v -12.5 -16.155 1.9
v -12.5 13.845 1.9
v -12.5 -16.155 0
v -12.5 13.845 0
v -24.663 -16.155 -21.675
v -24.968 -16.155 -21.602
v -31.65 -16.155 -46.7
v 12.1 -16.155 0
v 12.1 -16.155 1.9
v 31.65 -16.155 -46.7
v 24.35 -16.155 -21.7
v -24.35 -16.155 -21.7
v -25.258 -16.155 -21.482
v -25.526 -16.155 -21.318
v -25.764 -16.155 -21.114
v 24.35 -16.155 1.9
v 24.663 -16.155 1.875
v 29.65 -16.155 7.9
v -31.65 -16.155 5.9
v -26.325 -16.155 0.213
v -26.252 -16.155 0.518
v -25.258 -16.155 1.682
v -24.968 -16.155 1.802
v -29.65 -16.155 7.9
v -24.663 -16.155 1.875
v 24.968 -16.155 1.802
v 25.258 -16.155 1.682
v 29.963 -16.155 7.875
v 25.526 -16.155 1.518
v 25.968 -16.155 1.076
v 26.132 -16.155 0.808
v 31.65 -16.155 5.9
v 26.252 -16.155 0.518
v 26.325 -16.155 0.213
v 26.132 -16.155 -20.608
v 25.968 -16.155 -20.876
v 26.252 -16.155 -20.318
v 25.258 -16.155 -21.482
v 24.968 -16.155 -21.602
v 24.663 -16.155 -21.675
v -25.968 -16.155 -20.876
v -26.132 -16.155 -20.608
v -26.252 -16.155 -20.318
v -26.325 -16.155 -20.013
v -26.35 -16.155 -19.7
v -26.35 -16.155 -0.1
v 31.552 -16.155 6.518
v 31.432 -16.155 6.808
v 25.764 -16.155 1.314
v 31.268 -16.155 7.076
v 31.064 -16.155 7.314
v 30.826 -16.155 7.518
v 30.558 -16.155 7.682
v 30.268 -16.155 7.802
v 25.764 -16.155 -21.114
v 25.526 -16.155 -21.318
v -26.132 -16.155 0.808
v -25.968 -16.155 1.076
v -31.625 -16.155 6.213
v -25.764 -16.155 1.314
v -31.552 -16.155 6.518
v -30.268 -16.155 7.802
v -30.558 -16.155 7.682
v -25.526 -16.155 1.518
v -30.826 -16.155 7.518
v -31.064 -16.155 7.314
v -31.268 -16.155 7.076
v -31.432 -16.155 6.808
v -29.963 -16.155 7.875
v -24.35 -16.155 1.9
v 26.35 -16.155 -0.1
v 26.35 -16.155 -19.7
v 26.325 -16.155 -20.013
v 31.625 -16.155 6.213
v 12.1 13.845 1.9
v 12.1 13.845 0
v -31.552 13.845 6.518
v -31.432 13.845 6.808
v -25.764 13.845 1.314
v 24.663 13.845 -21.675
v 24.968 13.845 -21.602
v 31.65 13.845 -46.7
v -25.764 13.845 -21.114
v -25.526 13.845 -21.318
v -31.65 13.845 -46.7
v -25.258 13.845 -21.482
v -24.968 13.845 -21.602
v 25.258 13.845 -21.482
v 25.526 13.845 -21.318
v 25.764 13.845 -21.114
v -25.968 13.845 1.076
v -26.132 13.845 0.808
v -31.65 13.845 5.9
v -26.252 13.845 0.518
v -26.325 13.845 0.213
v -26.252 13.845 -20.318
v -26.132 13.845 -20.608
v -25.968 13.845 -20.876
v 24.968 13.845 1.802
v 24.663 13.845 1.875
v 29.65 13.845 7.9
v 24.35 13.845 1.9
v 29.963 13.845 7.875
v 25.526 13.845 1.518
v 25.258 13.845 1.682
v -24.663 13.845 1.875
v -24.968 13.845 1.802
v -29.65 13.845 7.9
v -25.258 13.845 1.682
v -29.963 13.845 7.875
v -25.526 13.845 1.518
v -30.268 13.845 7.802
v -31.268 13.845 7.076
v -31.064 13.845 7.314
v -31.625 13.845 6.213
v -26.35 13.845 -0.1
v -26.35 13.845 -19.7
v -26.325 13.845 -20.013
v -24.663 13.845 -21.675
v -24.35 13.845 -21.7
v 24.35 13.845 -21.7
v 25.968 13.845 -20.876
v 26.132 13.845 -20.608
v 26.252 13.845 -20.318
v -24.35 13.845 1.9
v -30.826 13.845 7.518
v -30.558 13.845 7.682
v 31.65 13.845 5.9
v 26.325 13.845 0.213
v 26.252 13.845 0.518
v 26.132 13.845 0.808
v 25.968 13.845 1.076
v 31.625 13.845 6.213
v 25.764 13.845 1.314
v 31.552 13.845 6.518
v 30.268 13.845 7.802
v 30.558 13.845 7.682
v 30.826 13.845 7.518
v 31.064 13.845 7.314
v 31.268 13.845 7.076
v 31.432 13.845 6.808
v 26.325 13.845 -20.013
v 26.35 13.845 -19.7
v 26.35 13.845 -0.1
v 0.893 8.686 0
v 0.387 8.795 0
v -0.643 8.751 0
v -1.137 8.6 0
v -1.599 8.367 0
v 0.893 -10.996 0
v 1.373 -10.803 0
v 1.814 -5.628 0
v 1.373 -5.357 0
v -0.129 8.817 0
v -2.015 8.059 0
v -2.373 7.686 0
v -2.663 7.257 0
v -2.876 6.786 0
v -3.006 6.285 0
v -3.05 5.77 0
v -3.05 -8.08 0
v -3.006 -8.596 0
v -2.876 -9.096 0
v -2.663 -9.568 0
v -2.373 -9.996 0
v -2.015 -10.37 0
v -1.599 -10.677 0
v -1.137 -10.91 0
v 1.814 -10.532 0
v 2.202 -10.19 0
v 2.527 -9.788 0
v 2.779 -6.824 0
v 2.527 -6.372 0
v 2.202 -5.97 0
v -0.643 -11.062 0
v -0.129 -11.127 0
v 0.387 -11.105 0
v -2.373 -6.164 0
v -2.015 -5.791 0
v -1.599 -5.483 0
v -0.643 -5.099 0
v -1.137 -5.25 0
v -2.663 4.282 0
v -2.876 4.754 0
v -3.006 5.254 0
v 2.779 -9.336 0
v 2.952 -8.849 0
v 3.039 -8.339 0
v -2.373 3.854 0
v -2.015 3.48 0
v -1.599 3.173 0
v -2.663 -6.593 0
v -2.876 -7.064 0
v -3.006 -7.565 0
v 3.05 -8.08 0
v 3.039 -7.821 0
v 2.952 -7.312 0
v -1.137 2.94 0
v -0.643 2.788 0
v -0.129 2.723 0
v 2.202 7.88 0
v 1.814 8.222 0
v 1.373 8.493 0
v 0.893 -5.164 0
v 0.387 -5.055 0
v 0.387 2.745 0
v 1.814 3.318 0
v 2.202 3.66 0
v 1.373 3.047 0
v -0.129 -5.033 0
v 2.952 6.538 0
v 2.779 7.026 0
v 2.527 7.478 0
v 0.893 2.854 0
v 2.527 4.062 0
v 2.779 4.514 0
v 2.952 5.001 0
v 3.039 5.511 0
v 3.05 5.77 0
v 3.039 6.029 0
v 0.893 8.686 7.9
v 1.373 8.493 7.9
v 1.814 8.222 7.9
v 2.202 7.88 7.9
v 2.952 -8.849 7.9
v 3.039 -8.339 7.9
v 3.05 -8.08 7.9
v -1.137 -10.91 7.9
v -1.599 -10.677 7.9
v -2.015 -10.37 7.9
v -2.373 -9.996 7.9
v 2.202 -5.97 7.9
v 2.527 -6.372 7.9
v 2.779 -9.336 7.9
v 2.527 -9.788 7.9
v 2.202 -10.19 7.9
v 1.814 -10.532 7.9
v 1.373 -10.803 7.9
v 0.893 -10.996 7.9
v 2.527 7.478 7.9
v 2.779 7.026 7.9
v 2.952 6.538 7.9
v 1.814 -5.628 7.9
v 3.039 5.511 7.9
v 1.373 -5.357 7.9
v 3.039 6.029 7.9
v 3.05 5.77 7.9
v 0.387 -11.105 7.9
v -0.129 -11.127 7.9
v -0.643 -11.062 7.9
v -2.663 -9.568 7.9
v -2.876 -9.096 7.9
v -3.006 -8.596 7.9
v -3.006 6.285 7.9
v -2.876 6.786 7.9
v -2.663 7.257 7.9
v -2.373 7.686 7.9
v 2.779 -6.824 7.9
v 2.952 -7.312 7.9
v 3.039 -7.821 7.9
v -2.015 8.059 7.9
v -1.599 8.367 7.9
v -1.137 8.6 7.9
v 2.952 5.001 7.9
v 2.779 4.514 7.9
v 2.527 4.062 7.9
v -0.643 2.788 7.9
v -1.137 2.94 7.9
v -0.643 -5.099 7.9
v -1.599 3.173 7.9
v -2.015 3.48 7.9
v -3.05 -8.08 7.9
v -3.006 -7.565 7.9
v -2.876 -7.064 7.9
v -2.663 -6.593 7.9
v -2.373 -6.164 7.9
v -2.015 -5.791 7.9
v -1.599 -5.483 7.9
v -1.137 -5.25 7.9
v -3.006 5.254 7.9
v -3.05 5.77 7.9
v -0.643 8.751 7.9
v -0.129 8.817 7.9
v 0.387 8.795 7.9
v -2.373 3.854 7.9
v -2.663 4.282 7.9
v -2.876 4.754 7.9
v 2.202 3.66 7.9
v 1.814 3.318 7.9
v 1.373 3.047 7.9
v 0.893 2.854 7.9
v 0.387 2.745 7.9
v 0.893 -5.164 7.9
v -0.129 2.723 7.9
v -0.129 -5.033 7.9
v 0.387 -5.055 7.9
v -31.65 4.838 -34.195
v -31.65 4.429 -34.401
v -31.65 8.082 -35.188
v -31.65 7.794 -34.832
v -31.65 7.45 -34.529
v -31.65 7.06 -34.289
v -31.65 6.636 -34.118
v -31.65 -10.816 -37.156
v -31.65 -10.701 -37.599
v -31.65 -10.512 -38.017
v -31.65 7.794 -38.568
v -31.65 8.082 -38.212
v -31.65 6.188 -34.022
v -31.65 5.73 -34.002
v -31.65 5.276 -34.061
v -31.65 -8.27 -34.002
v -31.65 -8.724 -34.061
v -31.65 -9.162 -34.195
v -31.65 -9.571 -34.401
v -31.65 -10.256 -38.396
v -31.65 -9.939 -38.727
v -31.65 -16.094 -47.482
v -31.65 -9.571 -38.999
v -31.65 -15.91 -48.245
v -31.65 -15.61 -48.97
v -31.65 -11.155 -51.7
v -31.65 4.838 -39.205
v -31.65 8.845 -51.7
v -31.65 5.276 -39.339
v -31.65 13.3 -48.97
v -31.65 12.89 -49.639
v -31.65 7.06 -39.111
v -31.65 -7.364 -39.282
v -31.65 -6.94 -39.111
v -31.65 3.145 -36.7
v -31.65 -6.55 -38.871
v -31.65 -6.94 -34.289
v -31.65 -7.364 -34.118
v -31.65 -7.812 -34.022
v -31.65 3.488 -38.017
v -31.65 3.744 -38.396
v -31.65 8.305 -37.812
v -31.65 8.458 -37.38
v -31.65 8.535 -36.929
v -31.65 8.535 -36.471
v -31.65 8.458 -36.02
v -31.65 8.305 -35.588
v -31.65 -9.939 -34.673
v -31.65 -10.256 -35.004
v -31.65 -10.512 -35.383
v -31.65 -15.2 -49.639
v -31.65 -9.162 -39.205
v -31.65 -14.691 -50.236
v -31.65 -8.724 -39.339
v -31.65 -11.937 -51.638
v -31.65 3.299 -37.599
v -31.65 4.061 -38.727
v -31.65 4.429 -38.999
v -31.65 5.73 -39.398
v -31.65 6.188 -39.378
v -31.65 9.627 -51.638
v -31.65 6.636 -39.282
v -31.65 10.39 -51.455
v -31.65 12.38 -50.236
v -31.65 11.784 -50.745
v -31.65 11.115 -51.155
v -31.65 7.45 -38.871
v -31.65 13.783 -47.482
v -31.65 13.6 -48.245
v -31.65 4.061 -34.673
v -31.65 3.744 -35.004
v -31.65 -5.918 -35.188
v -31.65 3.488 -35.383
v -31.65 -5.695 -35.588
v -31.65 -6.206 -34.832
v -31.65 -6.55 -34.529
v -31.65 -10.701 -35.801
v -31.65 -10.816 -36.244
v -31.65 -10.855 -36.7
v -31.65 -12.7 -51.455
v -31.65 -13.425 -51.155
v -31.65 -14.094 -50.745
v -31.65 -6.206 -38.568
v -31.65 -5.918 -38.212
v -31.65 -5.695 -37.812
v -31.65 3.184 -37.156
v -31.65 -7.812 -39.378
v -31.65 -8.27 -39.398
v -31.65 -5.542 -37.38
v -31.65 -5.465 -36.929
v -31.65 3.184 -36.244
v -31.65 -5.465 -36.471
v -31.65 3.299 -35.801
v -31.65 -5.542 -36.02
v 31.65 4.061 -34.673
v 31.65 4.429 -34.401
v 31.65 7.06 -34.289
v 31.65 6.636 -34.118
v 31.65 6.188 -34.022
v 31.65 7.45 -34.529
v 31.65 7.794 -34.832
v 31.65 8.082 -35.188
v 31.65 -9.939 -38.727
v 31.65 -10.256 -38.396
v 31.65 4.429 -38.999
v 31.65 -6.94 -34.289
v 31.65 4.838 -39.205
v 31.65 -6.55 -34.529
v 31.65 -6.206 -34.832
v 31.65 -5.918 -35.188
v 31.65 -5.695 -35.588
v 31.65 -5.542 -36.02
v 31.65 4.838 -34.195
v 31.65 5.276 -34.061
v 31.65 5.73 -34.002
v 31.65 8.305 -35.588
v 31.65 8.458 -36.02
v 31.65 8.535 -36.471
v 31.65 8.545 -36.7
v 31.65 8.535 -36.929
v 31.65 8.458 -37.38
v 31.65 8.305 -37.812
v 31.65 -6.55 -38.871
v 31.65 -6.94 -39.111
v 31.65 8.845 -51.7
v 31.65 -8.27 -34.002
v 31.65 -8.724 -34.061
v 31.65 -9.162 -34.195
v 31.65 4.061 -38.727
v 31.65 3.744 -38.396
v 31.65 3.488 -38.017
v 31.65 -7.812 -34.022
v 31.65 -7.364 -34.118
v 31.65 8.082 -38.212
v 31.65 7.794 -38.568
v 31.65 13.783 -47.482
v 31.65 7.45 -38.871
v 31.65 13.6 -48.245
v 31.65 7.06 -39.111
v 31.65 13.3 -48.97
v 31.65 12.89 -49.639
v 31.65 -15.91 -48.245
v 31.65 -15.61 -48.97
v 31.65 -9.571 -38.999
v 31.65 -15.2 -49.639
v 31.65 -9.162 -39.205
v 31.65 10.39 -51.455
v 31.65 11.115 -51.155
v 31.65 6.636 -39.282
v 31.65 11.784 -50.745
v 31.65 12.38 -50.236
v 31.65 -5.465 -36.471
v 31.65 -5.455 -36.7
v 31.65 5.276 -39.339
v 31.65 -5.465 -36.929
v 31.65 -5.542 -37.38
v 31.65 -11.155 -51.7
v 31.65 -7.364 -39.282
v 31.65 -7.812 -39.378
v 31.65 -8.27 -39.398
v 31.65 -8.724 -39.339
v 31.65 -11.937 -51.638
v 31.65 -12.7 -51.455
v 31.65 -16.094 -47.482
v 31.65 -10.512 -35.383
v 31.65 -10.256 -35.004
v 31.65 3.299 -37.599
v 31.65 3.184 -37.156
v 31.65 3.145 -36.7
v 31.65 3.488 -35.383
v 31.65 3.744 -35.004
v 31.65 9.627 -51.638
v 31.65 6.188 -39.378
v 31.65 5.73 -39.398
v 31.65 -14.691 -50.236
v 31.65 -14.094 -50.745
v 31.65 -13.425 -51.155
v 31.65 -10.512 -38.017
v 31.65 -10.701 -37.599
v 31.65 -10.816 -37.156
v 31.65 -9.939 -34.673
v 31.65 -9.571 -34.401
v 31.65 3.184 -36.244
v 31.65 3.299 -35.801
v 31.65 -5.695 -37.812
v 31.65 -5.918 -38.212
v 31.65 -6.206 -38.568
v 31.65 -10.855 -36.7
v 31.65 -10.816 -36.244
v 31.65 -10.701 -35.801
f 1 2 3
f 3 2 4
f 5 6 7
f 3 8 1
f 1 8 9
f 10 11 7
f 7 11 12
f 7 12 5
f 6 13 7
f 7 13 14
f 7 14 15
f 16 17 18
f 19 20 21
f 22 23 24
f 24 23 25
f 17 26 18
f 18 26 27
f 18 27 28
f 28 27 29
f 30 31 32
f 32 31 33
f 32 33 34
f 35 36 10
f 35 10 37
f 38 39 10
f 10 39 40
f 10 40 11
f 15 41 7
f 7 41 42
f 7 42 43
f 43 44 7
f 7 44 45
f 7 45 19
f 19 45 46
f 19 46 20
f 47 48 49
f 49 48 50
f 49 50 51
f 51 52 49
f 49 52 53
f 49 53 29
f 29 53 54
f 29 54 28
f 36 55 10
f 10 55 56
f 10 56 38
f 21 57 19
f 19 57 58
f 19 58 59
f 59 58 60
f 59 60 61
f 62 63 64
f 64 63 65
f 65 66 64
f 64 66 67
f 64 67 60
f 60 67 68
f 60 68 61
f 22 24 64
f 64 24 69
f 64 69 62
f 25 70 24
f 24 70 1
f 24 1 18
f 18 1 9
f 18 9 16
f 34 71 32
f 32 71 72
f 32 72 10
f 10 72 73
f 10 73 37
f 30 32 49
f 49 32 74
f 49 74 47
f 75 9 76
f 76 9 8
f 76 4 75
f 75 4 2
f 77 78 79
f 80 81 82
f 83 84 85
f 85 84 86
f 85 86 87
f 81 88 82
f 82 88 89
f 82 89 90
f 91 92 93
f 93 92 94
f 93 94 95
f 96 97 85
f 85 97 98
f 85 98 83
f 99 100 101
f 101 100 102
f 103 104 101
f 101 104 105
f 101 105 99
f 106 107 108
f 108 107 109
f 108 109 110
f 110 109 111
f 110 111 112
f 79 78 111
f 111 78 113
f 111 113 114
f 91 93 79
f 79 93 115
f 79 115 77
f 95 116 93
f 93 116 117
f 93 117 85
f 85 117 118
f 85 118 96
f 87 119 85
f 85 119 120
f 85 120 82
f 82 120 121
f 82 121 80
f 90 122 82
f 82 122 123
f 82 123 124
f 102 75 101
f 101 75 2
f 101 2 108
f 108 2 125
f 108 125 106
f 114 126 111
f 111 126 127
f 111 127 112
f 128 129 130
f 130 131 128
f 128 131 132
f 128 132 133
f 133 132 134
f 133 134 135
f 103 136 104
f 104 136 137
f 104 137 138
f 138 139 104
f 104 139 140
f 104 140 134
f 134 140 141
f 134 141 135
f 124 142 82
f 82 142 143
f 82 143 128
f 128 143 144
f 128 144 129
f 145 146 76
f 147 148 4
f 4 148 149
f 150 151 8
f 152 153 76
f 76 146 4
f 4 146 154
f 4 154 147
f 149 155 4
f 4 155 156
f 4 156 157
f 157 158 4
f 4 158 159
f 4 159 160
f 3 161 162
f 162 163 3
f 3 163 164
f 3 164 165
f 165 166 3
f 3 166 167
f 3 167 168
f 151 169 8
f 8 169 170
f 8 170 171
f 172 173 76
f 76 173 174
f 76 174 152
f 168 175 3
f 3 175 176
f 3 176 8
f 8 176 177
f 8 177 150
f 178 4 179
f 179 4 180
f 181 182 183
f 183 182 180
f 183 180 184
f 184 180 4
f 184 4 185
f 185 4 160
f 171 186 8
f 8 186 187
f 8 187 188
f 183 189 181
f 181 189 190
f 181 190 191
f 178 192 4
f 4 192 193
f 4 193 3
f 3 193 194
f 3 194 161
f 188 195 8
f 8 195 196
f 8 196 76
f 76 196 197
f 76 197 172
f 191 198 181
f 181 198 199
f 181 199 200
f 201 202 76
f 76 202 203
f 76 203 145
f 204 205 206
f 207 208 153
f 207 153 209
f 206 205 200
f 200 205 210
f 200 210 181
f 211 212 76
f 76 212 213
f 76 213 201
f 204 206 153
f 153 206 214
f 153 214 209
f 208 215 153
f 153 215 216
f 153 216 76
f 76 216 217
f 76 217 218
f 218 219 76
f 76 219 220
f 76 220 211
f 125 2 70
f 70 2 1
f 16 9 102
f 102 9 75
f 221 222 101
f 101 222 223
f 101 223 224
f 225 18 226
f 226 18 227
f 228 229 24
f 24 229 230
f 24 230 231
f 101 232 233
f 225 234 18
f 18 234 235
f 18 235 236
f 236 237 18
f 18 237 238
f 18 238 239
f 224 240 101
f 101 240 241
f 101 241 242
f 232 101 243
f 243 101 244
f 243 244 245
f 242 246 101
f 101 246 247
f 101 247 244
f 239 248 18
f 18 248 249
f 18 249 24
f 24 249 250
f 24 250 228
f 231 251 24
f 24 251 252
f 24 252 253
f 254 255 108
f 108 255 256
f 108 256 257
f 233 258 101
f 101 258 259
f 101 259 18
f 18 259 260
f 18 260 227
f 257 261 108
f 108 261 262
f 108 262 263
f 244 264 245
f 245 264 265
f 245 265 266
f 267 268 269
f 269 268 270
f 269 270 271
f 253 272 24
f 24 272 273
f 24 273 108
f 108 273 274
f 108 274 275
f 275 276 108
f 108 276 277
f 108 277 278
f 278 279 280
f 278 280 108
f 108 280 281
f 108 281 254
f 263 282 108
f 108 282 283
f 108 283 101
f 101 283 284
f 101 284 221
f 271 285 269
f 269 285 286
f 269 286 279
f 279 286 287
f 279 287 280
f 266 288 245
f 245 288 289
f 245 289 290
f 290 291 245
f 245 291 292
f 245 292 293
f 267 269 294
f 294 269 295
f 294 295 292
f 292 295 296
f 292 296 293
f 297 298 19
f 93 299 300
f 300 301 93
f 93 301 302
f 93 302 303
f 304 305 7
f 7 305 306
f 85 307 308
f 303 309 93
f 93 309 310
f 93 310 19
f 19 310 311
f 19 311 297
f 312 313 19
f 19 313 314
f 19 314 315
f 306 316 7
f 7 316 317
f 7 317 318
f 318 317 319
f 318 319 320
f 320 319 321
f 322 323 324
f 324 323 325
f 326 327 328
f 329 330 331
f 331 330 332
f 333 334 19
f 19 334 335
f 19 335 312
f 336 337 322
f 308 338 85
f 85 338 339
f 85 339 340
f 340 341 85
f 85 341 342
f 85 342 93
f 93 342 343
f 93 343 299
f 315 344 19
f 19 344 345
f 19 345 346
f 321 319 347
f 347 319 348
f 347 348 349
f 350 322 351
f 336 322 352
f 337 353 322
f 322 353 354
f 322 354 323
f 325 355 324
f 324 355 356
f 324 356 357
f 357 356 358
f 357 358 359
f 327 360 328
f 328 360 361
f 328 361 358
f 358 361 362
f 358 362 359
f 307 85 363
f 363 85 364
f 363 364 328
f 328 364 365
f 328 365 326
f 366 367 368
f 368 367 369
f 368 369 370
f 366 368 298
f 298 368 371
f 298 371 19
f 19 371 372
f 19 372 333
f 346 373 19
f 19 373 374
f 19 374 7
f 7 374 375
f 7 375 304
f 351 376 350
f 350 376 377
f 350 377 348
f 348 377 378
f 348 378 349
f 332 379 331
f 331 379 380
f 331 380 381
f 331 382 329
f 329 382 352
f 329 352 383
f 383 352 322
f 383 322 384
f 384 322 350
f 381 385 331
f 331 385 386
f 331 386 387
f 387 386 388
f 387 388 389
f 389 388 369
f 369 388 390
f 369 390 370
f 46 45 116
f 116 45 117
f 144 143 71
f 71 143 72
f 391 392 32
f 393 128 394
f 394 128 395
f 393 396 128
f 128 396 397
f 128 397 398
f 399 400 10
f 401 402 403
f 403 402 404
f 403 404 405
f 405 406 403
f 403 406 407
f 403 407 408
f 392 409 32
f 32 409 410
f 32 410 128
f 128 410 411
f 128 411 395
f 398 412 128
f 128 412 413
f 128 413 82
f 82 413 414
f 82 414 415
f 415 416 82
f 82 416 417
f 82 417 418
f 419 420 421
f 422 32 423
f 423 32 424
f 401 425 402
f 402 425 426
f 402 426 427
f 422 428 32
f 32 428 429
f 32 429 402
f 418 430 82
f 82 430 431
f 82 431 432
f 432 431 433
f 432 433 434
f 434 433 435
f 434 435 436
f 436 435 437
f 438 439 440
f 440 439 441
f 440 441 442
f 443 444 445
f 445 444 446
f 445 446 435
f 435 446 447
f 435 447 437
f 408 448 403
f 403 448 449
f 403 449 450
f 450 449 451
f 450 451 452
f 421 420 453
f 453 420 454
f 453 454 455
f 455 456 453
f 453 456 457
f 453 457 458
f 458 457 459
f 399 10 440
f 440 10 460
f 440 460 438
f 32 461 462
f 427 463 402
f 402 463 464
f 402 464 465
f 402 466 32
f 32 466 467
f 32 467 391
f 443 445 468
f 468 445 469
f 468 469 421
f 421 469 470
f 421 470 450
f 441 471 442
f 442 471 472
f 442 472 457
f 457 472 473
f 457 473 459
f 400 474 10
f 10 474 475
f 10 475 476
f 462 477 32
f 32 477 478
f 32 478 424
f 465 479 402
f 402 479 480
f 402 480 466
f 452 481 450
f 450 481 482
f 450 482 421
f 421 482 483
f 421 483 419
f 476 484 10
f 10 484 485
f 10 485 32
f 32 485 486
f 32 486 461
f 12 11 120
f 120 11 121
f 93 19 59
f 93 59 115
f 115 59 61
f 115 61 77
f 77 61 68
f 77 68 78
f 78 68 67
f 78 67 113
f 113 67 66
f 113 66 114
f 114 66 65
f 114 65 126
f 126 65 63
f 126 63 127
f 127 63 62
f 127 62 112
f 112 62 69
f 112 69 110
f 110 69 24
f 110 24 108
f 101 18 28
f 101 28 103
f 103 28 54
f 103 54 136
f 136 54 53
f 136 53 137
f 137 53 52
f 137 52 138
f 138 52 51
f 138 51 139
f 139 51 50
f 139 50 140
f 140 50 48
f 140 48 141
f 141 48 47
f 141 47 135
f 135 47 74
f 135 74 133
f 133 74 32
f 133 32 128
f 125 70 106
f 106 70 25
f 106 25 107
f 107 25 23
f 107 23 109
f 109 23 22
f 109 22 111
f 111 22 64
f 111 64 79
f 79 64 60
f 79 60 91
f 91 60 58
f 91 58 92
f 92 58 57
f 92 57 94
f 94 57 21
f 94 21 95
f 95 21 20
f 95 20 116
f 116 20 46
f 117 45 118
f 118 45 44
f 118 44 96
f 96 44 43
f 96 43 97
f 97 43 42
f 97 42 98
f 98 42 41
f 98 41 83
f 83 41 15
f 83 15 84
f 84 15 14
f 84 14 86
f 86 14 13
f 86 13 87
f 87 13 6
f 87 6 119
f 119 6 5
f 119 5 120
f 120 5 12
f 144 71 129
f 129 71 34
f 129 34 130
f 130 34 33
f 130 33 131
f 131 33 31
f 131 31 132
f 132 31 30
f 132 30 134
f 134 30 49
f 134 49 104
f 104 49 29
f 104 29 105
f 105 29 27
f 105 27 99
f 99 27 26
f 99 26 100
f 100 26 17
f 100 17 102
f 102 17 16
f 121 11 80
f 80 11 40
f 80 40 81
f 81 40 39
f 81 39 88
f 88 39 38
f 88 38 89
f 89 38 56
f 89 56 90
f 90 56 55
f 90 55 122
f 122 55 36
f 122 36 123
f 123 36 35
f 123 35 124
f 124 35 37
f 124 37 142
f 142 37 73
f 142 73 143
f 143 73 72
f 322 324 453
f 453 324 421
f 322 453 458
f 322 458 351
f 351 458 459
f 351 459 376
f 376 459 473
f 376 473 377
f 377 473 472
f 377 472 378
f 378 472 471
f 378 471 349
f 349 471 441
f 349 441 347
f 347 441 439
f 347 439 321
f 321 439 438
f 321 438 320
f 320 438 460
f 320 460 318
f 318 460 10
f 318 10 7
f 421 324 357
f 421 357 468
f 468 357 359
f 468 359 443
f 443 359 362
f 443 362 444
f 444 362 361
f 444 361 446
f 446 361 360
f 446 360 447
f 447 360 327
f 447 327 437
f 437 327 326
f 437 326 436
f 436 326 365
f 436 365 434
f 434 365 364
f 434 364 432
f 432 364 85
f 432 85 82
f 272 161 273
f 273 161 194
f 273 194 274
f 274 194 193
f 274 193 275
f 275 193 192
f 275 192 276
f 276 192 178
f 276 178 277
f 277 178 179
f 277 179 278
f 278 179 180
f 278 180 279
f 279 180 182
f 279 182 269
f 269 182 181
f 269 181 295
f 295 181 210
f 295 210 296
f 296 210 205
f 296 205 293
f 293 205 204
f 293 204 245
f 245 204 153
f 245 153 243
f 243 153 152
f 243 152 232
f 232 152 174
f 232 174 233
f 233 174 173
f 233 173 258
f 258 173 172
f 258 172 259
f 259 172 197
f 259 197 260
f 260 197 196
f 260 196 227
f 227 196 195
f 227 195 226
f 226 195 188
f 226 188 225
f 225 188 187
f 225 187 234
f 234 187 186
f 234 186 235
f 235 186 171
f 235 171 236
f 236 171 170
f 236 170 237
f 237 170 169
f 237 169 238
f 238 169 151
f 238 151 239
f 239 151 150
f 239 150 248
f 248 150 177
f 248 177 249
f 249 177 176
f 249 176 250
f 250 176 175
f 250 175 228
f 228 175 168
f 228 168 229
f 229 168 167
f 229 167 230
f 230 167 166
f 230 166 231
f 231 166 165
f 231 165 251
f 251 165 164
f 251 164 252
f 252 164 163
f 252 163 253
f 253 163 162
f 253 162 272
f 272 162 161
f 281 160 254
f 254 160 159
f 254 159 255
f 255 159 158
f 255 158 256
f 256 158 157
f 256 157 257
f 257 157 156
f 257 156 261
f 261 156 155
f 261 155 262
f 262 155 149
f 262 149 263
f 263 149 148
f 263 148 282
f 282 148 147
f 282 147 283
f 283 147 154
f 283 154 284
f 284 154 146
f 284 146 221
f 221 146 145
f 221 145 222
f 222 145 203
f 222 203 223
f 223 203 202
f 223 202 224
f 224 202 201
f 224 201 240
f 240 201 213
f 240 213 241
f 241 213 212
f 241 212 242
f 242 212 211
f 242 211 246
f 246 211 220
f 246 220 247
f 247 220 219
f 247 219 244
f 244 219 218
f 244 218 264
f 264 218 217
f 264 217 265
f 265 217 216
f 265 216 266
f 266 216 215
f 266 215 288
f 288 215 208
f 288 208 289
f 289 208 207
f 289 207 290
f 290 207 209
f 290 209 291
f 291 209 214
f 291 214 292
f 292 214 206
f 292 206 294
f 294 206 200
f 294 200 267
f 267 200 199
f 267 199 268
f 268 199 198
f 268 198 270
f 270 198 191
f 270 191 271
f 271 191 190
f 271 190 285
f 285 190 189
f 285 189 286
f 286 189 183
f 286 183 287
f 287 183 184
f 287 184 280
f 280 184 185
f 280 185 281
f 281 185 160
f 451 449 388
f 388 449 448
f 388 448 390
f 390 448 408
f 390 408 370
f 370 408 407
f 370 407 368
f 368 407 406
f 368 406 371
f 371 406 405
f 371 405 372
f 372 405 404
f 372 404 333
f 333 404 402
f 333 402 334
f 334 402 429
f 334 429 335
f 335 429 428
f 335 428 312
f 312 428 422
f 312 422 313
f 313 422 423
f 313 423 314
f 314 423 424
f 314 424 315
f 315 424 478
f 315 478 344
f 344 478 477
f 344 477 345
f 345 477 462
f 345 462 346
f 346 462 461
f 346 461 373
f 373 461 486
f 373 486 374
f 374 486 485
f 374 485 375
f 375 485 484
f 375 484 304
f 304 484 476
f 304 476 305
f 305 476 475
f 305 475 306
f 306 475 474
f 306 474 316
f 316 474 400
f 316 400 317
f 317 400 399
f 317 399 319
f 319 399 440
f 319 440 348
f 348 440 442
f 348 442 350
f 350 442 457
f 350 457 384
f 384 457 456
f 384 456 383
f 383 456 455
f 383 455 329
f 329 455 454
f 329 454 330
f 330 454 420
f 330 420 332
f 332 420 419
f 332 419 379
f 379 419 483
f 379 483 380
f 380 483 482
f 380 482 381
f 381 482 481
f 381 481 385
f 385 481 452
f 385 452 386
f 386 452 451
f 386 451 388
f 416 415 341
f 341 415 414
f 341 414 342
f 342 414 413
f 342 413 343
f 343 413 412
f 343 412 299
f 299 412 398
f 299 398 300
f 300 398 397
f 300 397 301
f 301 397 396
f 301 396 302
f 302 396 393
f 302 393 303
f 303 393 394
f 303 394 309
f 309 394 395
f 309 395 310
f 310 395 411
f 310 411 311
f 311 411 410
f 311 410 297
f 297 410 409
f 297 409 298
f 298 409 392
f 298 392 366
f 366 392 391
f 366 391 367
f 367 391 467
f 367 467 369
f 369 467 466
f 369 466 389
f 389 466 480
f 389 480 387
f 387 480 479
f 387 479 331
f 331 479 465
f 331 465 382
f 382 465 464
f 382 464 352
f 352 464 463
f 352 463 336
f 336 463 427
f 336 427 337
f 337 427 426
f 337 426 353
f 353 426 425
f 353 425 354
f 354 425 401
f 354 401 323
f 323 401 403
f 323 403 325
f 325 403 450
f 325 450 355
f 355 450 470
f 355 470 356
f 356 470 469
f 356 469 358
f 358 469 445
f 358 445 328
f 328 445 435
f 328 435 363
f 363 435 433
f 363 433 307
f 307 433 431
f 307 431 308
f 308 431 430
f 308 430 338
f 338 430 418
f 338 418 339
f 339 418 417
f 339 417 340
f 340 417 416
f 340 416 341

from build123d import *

# Parameters (mm, degrees)
ESQUISSE1_W             = 24.6
ESQUISSE1_H             = 30
BOSS_EXTRU_1_DEPTH      = 1.9
ESQUISSE2_W             = 52.7
ESQUISSE2_H             = 30
BOSS_EXTRU_2_DEPTH      = 6
ESQUISSE4_W             = 29.6
ESQUISSE4_H             = 30
BOSS_EXTRU_3_DEPTH      = 5.3
ESQUISSE5_W             = 29.6
ESQUISSE5_H             = 30
BOSS_EXTRU_4_DEPTH      = 5.3
ESQUISSE6_W             = 63.3
ESQUISSE6_H             = 30
BOSS_EXTRU_5_DEPTH      = 3
CONG_1_R                = 2
ESQUISSE7_W             = 63.3
ESQUISSE7_H             = 30
BOSS_EXTRU_6_DEPTH      = 27
CONG_3_R                = 5
ESQUISSE3_R             = 3.05
ENL_V_MAT_EXTRU_2_DEPTH = 26
ESQUISSE8_R             = 2.7
ENL_V_MAT_EXTRU_3_DEPTH = 68


with BuildPart() as part:
    # Esquisse1 → Boss.-Extru.1 (new body)
    with BuildSketch(Plane.XY):
        with Locations((-0.2, -1.155063291)):
            Rectangle(ESQUISSE1_W, ESQUISSE1_H)
    extrude(amount=BOSS_EXTRU_1_DEPTH)

    # Esquisse2 → Boss.-Extru.2 (add)
    with BuildSketch(Plane.XY.offset(1.9)):
        with Locations((0, -1.155063291)):
            Rectangle(ESQUISSE2_W, ESQUISSE2_H)
    extrude(amount=BOSS_EXTRU_2_DEPTH)

    # Esquisse4 → Boss.-Extru.3 (add)
    with BuildSketch(Plane.ZY.offset(26.35)):
        with Locations((-6.9, -1.155063291)):
            Rectangle(ESQUISSE4_W, ESQUISSE4_H)
    extrude(amount=BOSS_EXTRU_3_DEPTH)

    # Esquisse5 → Boss.-Extru.4 (add)
    with BuildSketch(Plane(origin=(26.35, 0, 0), x_dir=(0, 0, -1), z_dir=(1, 0, 0))):
        with Locations((6.9, -1.155063291)):
            Rectangle(ESQUISSE5_W, ESQUISSE5_H)
    extrude(amount=BOSS_EXTRU_4_DEPTH)

    # Esquisse6 → Boss.-Extru.5 (add)
    with BuildSketch(Plane(origin=(0, 0, -21.7), x_dir=(-1, 0, 0), z_dir=(0, 0, -1))):
        with Locations((0, -1.155063291)):
            Rectangle(ESQUISSE6_W, ESQUISSE6_H)
    extrude(amount=BOSS_EXTRU_5_DEPTH)

    # Congé1
    cong_1_edges = [part.edges().sort_by_distance(p)[0] for p in [
        (-26.35, -1.155063291, 1.9),
        (26.35, -1.155063291, 1.9),
        (-26.35, -1.155063291, -21.7),
        (-31.65, -1.155063291, 7.9),
        (26.35, -1.155063291, -21.7),
        (31.65, -1.155063291, 7.9),
    ]]
    fillet(cong_1_edges, radius=CONG_1_R)

    # Esquisse7 → Boss.-Extru.6 (add)
    with BuildSketch(Plane(origin=(0, 0, -24.7), x_dir=(-1, 0, 0), z_dir=(0, 0, -1))):
        with Locations((0, -1.155063291)):
            Rectangle(ESQUISSE7_W, ESQUISSE7_H)
    extrude(amount=BOSS_EXTRU_6_DEPTH)

    # Congé3
    cong_3_edges = [part.edges().sort_by_distance(p)[0] for p in [
        (0, -16.155063291, -51.7),
        (0, 13.844936709, -51.7),
    ]]
    fillet(cong_3_edges, radius=CONG_3_R)

    # Esquisse3 → Enlèv. mat.-Extru.2 (cut)
    with BuildSketch(Plane.XY):
        with Locations(Location((0, 5.769936709, 0), (0, 0, 180))):
            Circle(ESQUISSE3_R)
        with Locations(Location((0, -8.080063291, 0), (0, 0, 180))):
            Circle(ESQUISSE3_R)
    extrude(amount=ENL_V_MAT_EXTRU_2_DEPTH, mode=Mode.SUBTRACT)

    # Esquisse8 → Enlèv. mat.-Extru.3 (cut)
    with BuildSketch(Plane.ZY.offset(31.65)):
        with Locations(Location((-36.7, 5.844936709, 0), (0, 0, 270))):
            Circle(ESQUISSE8_R)
        with Locations(Location((-36.7, -8.155063291, 0), (0, 0, 270))):
            Circle(ESQUISSE8_R)
    extrude(amount=-ENL_V_MAT_EXTRU_3_DEPTH, mode=Mode.SUBTRACT)


solid = part.part
